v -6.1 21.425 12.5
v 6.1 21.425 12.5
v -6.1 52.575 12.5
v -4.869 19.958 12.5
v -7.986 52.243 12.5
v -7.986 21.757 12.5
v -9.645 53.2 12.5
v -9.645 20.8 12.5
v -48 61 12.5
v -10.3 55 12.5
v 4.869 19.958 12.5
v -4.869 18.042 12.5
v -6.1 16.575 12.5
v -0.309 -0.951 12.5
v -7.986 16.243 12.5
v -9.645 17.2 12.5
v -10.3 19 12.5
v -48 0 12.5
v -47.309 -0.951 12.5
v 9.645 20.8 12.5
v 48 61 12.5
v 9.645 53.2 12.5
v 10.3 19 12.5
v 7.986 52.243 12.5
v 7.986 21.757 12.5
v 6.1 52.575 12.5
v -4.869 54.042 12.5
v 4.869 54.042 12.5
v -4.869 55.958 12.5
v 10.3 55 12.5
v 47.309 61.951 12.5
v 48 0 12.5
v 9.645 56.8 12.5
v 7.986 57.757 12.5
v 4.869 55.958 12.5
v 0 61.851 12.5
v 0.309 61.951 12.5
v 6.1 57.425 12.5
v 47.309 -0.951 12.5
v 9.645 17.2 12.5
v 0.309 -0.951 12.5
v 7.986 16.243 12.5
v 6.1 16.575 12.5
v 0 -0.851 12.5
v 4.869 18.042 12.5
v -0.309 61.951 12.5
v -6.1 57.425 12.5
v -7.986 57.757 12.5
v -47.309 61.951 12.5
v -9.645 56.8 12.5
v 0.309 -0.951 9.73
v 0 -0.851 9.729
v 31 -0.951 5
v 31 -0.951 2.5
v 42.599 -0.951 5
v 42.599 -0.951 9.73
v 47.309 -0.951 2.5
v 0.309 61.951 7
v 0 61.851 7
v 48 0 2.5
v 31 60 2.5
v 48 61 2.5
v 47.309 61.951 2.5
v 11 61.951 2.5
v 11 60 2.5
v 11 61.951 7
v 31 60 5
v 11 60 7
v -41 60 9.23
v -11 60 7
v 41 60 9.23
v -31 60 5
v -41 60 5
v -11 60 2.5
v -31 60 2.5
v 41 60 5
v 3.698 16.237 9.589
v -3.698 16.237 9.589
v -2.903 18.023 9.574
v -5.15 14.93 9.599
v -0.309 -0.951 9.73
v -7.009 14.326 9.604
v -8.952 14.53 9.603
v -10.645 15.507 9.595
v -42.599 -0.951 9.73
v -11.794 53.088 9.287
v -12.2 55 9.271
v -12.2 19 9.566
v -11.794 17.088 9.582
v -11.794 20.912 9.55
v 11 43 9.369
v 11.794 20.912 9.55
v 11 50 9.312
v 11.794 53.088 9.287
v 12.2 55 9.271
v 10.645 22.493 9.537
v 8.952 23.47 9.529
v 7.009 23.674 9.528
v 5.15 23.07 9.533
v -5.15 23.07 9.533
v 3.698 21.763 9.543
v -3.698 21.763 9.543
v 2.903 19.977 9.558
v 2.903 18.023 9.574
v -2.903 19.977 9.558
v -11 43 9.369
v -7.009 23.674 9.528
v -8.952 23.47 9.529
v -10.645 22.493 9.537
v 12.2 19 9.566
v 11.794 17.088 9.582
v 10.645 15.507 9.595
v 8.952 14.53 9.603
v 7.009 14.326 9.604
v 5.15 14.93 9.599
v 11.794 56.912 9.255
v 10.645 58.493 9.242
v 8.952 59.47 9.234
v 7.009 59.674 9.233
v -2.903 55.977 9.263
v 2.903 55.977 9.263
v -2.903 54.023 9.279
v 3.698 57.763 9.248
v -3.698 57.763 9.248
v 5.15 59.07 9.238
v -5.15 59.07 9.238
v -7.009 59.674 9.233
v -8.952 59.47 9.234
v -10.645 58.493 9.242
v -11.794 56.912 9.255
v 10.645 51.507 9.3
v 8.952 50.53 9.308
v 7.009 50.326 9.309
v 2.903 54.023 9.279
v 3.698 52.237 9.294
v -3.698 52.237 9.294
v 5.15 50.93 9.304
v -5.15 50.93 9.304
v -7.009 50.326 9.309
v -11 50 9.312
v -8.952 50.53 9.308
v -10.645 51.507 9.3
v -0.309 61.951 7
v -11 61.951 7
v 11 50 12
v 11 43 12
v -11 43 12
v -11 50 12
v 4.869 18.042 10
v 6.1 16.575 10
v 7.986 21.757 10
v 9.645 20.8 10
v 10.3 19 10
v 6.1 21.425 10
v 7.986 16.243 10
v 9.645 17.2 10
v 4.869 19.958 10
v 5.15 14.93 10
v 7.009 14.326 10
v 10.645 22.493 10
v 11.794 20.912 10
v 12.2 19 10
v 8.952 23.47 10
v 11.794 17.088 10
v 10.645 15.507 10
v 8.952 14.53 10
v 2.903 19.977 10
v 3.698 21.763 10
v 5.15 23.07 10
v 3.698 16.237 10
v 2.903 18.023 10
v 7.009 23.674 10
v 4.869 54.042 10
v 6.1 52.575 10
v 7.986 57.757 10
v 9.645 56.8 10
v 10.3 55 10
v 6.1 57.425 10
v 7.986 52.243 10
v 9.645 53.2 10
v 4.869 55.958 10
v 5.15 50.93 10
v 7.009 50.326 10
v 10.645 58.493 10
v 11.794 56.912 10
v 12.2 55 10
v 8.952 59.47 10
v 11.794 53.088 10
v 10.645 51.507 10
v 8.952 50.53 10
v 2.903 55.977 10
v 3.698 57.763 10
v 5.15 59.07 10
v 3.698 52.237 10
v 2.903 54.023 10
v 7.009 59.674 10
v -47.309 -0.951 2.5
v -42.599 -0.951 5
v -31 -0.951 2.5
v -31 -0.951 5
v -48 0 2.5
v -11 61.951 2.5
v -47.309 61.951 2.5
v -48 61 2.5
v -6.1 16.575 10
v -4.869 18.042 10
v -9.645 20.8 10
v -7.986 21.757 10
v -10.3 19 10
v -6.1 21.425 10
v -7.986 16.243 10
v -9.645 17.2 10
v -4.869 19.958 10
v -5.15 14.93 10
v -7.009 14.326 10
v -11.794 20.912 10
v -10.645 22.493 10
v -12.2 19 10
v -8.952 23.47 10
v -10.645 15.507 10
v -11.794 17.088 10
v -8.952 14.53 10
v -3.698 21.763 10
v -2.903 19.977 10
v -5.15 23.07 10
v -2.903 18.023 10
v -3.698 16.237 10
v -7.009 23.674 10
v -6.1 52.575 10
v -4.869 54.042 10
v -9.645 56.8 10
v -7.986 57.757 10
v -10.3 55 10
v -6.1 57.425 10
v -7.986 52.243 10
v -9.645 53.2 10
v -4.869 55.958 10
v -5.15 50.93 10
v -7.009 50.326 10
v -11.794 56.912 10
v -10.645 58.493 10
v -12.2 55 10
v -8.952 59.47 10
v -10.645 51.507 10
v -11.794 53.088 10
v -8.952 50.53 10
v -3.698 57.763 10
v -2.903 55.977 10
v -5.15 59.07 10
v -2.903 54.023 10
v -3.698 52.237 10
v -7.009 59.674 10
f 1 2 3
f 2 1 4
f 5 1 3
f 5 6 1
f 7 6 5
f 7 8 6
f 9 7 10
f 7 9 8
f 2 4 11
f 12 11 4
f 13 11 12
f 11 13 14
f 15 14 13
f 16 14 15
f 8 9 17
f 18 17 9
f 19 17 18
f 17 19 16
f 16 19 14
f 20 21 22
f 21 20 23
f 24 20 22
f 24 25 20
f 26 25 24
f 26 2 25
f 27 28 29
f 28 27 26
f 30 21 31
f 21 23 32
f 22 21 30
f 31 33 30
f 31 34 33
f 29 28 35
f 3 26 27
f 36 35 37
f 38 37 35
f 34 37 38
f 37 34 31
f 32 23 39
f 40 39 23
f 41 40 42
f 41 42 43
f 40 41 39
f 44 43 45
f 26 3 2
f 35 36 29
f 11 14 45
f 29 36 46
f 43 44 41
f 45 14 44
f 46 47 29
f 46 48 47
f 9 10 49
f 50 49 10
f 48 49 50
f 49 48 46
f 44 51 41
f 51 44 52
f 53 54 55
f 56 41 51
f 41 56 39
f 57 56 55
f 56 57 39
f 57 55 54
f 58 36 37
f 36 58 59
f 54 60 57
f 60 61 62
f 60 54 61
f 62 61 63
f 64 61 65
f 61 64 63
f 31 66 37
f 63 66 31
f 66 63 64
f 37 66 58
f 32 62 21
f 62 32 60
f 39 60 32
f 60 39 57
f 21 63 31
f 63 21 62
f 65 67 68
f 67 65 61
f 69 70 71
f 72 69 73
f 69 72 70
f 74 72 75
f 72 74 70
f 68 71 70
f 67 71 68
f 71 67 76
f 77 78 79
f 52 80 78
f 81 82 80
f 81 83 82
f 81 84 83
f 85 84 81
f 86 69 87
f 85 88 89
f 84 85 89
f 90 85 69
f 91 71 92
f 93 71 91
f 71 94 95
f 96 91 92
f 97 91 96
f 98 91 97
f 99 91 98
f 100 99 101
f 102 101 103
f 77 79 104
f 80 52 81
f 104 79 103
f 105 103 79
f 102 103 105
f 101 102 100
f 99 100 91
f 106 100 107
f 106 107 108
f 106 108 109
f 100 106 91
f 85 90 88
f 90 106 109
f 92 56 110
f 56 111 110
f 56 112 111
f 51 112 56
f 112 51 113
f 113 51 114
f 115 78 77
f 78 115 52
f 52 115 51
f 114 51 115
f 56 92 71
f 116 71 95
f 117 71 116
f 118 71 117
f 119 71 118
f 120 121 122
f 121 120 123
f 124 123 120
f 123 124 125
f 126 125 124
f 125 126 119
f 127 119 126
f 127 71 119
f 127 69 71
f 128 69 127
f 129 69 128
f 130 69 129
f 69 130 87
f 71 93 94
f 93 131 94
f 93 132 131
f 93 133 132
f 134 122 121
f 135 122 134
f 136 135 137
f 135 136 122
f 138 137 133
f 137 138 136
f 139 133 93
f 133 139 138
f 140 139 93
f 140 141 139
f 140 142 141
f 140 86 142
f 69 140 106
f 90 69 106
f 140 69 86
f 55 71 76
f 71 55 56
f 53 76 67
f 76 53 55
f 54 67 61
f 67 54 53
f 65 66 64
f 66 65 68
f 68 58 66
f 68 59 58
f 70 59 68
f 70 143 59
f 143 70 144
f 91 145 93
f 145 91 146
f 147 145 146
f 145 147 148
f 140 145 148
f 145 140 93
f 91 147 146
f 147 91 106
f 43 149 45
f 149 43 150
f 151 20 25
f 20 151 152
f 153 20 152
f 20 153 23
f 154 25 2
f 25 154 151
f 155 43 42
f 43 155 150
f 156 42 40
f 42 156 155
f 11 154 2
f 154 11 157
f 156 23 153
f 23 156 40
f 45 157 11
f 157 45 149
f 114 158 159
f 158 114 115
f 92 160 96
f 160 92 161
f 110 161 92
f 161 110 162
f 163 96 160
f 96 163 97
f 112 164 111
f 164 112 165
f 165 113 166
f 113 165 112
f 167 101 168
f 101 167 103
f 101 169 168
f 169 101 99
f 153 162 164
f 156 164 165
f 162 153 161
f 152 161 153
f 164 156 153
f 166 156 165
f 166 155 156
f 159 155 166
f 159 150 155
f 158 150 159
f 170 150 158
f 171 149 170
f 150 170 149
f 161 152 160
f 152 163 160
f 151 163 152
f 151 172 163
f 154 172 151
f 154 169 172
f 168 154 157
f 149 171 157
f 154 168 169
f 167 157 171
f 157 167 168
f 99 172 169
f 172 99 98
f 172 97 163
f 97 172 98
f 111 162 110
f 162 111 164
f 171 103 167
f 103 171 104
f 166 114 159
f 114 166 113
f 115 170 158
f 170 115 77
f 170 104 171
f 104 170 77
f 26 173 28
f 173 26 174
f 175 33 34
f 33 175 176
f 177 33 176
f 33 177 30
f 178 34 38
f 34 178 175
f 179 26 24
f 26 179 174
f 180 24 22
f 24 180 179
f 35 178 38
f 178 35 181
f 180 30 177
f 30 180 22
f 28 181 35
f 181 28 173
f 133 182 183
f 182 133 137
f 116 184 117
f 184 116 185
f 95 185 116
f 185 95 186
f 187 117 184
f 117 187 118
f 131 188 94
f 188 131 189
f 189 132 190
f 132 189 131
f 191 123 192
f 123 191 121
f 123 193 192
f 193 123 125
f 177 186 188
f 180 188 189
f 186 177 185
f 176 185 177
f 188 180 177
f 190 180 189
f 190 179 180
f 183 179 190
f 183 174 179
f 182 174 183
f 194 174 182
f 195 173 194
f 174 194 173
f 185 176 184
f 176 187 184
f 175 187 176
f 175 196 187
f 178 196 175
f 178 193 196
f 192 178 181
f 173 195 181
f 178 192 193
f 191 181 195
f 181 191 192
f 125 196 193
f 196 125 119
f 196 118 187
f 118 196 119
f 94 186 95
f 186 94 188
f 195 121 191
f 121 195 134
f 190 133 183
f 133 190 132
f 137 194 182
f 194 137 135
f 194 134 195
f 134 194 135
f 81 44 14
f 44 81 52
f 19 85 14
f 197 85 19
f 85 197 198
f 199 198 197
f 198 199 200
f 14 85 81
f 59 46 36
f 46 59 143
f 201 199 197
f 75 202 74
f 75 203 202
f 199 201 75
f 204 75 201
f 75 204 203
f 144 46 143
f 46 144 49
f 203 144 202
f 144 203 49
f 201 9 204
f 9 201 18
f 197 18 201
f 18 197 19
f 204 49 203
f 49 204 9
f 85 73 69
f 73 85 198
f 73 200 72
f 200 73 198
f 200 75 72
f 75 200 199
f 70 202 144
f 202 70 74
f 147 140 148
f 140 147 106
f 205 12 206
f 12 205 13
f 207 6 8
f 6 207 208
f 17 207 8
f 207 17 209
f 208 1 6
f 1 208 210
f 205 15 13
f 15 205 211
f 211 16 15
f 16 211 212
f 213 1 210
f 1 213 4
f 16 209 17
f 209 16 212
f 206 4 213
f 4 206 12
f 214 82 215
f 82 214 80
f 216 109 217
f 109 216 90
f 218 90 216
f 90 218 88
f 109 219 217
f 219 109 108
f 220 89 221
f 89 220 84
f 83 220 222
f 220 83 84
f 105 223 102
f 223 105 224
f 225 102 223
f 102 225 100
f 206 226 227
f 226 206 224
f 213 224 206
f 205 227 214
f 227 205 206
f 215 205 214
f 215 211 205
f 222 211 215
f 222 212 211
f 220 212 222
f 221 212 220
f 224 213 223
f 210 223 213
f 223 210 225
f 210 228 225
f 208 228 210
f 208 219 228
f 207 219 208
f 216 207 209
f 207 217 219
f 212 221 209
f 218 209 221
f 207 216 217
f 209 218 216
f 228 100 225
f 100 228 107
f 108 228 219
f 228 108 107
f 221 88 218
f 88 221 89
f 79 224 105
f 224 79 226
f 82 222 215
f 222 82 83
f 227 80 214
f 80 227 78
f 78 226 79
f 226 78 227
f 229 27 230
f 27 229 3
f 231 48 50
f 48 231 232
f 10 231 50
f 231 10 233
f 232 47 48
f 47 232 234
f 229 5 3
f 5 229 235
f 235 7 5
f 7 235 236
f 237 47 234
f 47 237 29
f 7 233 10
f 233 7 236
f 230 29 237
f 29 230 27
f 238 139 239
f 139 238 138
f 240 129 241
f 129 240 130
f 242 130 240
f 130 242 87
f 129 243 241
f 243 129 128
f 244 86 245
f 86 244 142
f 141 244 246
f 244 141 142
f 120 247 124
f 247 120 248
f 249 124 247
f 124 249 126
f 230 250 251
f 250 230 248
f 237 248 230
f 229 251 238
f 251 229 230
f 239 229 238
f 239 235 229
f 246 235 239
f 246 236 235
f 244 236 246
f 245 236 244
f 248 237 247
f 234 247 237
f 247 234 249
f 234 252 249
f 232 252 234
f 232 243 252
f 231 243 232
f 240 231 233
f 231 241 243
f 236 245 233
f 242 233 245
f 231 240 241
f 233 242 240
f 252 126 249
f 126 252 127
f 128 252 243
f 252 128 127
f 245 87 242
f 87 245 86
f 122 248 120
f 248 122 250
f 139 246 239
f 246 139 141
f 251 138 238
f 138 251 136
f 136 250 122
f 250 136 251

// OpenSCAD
union() {
  difference() {
    difference() {
      difference() {
        difference() {
          difference() {
            translate([0.0,0.0,2.5]) 
              intersection() {
                minkowski() {  cube([47.0, 61.0, 9.0]); cylinder(r=1.0, h=1.0);}
                translate([0.0,-10.0,0.0]) cube([200.0, 200.0, 200.0]);
              }
            translate([0.0,-1.0,5.0]) 
              polyhedron( points=[ [0.0,0.0,0.0]
              , [42.6,0.0,0.0]
              , [41.0,61.0,0.0]
              , [0.0,61.0,0.0]
              , [0.0,0.0,4.73]
              , [42.6,0.0,4.73]
              , [41.0,61.0,4.23]
              , [0.0,61.0,4.23] ]
              , faces=[ [0, 1, 2, 3]
              , [4, 5, 1, 0]
              , [7, 6, 5, 4]
              , [5, 6, 2, 1]
              , [6, 7, 3, 2]
              , [7, 4, 0, 3] ]
              , convexity=10 );
          }
          translate([0.0,-1.0,-3.0]) cube([31.0, 61.0, 12.0]);
        }
        translate([0.0,20.0,0.0]) cube([11.0, 61.0, 7.0]);
      }
      translate([0.0,43.0,-1.0]) cube([11.0, 7.0, 13.0]);
    }
    translate([7.5,19.0,0.0]) 
      union() {
        cylinder(r=2.8, h=30.0);
        cylinder(r=4.7, h=10.0);
        translate([0.0,36.0,0.0]) cylinder(r=2.8, h=30.0);
        translate([0.0,36.0,0.0]) cylinder(r=4.7, h=10.0);
      }
  }
  mirror([1.0,0.0,0.0]) 
    difference() {
      difference() {
        difference() {
          difference() {
            difference() {
              translate([0.0,0.0,2.5]) 
                intersection() {
                  minkowski() {
                    cube([47.0, 61.0, 9.0]);
                    cylinder(r=1.0, h=1.0);
                  }
                  translate([0.0,-10.0,0.0]) cube([200.0, 200.0, 200.0]);
                }
              translate([0.0,-1.0,5.0]) 
                polyhedron( points=[ [0.0,0.0,0.0]
                , [42.6,0.0,0.0]
                , [41.0,61.0,0.0]
                , [0.0,61.0,0.0]
                , [0.0,0.0,4.73]
                , [42.6,0.0,4.73]
                , [41.0,61.0,4.23]
                , [0.0,61.0,4.23] ]
                , faces=[ [0, 1, 2, 3]
                , [4, 5, 1, 0]
                , [7, 6, 5, 4]
                , [5, 6, 2, 1]
                , [6, 7, 3, 2]
                , [7, 4, 0, 3] ]
                , convexity=10 );
            }
            translate([0.0,-1.0,-3.0]) cube([31.0, 61.0, 12.0]);
          }
          translate([0.0,20.0,0.0]) cube([11.0, 61.0, 7.0]);
        }
        translate([0.0,43.0,-1.0]) cube([11.0, 7.0, 13.0]);
      }
      translate([7.5,19.0,0.0]) 
        union() {
          cylinder(r=2.8, h=30.0);
          cylinder(r=4.7, h=10.0);
          translate([0.0,36.0,0.0]) cylinder(r=2.8, h=30.0);
          translate([0.0,36.0,0.0]) cylinder(r=4.7, h=10.0);
        }
    }
}
